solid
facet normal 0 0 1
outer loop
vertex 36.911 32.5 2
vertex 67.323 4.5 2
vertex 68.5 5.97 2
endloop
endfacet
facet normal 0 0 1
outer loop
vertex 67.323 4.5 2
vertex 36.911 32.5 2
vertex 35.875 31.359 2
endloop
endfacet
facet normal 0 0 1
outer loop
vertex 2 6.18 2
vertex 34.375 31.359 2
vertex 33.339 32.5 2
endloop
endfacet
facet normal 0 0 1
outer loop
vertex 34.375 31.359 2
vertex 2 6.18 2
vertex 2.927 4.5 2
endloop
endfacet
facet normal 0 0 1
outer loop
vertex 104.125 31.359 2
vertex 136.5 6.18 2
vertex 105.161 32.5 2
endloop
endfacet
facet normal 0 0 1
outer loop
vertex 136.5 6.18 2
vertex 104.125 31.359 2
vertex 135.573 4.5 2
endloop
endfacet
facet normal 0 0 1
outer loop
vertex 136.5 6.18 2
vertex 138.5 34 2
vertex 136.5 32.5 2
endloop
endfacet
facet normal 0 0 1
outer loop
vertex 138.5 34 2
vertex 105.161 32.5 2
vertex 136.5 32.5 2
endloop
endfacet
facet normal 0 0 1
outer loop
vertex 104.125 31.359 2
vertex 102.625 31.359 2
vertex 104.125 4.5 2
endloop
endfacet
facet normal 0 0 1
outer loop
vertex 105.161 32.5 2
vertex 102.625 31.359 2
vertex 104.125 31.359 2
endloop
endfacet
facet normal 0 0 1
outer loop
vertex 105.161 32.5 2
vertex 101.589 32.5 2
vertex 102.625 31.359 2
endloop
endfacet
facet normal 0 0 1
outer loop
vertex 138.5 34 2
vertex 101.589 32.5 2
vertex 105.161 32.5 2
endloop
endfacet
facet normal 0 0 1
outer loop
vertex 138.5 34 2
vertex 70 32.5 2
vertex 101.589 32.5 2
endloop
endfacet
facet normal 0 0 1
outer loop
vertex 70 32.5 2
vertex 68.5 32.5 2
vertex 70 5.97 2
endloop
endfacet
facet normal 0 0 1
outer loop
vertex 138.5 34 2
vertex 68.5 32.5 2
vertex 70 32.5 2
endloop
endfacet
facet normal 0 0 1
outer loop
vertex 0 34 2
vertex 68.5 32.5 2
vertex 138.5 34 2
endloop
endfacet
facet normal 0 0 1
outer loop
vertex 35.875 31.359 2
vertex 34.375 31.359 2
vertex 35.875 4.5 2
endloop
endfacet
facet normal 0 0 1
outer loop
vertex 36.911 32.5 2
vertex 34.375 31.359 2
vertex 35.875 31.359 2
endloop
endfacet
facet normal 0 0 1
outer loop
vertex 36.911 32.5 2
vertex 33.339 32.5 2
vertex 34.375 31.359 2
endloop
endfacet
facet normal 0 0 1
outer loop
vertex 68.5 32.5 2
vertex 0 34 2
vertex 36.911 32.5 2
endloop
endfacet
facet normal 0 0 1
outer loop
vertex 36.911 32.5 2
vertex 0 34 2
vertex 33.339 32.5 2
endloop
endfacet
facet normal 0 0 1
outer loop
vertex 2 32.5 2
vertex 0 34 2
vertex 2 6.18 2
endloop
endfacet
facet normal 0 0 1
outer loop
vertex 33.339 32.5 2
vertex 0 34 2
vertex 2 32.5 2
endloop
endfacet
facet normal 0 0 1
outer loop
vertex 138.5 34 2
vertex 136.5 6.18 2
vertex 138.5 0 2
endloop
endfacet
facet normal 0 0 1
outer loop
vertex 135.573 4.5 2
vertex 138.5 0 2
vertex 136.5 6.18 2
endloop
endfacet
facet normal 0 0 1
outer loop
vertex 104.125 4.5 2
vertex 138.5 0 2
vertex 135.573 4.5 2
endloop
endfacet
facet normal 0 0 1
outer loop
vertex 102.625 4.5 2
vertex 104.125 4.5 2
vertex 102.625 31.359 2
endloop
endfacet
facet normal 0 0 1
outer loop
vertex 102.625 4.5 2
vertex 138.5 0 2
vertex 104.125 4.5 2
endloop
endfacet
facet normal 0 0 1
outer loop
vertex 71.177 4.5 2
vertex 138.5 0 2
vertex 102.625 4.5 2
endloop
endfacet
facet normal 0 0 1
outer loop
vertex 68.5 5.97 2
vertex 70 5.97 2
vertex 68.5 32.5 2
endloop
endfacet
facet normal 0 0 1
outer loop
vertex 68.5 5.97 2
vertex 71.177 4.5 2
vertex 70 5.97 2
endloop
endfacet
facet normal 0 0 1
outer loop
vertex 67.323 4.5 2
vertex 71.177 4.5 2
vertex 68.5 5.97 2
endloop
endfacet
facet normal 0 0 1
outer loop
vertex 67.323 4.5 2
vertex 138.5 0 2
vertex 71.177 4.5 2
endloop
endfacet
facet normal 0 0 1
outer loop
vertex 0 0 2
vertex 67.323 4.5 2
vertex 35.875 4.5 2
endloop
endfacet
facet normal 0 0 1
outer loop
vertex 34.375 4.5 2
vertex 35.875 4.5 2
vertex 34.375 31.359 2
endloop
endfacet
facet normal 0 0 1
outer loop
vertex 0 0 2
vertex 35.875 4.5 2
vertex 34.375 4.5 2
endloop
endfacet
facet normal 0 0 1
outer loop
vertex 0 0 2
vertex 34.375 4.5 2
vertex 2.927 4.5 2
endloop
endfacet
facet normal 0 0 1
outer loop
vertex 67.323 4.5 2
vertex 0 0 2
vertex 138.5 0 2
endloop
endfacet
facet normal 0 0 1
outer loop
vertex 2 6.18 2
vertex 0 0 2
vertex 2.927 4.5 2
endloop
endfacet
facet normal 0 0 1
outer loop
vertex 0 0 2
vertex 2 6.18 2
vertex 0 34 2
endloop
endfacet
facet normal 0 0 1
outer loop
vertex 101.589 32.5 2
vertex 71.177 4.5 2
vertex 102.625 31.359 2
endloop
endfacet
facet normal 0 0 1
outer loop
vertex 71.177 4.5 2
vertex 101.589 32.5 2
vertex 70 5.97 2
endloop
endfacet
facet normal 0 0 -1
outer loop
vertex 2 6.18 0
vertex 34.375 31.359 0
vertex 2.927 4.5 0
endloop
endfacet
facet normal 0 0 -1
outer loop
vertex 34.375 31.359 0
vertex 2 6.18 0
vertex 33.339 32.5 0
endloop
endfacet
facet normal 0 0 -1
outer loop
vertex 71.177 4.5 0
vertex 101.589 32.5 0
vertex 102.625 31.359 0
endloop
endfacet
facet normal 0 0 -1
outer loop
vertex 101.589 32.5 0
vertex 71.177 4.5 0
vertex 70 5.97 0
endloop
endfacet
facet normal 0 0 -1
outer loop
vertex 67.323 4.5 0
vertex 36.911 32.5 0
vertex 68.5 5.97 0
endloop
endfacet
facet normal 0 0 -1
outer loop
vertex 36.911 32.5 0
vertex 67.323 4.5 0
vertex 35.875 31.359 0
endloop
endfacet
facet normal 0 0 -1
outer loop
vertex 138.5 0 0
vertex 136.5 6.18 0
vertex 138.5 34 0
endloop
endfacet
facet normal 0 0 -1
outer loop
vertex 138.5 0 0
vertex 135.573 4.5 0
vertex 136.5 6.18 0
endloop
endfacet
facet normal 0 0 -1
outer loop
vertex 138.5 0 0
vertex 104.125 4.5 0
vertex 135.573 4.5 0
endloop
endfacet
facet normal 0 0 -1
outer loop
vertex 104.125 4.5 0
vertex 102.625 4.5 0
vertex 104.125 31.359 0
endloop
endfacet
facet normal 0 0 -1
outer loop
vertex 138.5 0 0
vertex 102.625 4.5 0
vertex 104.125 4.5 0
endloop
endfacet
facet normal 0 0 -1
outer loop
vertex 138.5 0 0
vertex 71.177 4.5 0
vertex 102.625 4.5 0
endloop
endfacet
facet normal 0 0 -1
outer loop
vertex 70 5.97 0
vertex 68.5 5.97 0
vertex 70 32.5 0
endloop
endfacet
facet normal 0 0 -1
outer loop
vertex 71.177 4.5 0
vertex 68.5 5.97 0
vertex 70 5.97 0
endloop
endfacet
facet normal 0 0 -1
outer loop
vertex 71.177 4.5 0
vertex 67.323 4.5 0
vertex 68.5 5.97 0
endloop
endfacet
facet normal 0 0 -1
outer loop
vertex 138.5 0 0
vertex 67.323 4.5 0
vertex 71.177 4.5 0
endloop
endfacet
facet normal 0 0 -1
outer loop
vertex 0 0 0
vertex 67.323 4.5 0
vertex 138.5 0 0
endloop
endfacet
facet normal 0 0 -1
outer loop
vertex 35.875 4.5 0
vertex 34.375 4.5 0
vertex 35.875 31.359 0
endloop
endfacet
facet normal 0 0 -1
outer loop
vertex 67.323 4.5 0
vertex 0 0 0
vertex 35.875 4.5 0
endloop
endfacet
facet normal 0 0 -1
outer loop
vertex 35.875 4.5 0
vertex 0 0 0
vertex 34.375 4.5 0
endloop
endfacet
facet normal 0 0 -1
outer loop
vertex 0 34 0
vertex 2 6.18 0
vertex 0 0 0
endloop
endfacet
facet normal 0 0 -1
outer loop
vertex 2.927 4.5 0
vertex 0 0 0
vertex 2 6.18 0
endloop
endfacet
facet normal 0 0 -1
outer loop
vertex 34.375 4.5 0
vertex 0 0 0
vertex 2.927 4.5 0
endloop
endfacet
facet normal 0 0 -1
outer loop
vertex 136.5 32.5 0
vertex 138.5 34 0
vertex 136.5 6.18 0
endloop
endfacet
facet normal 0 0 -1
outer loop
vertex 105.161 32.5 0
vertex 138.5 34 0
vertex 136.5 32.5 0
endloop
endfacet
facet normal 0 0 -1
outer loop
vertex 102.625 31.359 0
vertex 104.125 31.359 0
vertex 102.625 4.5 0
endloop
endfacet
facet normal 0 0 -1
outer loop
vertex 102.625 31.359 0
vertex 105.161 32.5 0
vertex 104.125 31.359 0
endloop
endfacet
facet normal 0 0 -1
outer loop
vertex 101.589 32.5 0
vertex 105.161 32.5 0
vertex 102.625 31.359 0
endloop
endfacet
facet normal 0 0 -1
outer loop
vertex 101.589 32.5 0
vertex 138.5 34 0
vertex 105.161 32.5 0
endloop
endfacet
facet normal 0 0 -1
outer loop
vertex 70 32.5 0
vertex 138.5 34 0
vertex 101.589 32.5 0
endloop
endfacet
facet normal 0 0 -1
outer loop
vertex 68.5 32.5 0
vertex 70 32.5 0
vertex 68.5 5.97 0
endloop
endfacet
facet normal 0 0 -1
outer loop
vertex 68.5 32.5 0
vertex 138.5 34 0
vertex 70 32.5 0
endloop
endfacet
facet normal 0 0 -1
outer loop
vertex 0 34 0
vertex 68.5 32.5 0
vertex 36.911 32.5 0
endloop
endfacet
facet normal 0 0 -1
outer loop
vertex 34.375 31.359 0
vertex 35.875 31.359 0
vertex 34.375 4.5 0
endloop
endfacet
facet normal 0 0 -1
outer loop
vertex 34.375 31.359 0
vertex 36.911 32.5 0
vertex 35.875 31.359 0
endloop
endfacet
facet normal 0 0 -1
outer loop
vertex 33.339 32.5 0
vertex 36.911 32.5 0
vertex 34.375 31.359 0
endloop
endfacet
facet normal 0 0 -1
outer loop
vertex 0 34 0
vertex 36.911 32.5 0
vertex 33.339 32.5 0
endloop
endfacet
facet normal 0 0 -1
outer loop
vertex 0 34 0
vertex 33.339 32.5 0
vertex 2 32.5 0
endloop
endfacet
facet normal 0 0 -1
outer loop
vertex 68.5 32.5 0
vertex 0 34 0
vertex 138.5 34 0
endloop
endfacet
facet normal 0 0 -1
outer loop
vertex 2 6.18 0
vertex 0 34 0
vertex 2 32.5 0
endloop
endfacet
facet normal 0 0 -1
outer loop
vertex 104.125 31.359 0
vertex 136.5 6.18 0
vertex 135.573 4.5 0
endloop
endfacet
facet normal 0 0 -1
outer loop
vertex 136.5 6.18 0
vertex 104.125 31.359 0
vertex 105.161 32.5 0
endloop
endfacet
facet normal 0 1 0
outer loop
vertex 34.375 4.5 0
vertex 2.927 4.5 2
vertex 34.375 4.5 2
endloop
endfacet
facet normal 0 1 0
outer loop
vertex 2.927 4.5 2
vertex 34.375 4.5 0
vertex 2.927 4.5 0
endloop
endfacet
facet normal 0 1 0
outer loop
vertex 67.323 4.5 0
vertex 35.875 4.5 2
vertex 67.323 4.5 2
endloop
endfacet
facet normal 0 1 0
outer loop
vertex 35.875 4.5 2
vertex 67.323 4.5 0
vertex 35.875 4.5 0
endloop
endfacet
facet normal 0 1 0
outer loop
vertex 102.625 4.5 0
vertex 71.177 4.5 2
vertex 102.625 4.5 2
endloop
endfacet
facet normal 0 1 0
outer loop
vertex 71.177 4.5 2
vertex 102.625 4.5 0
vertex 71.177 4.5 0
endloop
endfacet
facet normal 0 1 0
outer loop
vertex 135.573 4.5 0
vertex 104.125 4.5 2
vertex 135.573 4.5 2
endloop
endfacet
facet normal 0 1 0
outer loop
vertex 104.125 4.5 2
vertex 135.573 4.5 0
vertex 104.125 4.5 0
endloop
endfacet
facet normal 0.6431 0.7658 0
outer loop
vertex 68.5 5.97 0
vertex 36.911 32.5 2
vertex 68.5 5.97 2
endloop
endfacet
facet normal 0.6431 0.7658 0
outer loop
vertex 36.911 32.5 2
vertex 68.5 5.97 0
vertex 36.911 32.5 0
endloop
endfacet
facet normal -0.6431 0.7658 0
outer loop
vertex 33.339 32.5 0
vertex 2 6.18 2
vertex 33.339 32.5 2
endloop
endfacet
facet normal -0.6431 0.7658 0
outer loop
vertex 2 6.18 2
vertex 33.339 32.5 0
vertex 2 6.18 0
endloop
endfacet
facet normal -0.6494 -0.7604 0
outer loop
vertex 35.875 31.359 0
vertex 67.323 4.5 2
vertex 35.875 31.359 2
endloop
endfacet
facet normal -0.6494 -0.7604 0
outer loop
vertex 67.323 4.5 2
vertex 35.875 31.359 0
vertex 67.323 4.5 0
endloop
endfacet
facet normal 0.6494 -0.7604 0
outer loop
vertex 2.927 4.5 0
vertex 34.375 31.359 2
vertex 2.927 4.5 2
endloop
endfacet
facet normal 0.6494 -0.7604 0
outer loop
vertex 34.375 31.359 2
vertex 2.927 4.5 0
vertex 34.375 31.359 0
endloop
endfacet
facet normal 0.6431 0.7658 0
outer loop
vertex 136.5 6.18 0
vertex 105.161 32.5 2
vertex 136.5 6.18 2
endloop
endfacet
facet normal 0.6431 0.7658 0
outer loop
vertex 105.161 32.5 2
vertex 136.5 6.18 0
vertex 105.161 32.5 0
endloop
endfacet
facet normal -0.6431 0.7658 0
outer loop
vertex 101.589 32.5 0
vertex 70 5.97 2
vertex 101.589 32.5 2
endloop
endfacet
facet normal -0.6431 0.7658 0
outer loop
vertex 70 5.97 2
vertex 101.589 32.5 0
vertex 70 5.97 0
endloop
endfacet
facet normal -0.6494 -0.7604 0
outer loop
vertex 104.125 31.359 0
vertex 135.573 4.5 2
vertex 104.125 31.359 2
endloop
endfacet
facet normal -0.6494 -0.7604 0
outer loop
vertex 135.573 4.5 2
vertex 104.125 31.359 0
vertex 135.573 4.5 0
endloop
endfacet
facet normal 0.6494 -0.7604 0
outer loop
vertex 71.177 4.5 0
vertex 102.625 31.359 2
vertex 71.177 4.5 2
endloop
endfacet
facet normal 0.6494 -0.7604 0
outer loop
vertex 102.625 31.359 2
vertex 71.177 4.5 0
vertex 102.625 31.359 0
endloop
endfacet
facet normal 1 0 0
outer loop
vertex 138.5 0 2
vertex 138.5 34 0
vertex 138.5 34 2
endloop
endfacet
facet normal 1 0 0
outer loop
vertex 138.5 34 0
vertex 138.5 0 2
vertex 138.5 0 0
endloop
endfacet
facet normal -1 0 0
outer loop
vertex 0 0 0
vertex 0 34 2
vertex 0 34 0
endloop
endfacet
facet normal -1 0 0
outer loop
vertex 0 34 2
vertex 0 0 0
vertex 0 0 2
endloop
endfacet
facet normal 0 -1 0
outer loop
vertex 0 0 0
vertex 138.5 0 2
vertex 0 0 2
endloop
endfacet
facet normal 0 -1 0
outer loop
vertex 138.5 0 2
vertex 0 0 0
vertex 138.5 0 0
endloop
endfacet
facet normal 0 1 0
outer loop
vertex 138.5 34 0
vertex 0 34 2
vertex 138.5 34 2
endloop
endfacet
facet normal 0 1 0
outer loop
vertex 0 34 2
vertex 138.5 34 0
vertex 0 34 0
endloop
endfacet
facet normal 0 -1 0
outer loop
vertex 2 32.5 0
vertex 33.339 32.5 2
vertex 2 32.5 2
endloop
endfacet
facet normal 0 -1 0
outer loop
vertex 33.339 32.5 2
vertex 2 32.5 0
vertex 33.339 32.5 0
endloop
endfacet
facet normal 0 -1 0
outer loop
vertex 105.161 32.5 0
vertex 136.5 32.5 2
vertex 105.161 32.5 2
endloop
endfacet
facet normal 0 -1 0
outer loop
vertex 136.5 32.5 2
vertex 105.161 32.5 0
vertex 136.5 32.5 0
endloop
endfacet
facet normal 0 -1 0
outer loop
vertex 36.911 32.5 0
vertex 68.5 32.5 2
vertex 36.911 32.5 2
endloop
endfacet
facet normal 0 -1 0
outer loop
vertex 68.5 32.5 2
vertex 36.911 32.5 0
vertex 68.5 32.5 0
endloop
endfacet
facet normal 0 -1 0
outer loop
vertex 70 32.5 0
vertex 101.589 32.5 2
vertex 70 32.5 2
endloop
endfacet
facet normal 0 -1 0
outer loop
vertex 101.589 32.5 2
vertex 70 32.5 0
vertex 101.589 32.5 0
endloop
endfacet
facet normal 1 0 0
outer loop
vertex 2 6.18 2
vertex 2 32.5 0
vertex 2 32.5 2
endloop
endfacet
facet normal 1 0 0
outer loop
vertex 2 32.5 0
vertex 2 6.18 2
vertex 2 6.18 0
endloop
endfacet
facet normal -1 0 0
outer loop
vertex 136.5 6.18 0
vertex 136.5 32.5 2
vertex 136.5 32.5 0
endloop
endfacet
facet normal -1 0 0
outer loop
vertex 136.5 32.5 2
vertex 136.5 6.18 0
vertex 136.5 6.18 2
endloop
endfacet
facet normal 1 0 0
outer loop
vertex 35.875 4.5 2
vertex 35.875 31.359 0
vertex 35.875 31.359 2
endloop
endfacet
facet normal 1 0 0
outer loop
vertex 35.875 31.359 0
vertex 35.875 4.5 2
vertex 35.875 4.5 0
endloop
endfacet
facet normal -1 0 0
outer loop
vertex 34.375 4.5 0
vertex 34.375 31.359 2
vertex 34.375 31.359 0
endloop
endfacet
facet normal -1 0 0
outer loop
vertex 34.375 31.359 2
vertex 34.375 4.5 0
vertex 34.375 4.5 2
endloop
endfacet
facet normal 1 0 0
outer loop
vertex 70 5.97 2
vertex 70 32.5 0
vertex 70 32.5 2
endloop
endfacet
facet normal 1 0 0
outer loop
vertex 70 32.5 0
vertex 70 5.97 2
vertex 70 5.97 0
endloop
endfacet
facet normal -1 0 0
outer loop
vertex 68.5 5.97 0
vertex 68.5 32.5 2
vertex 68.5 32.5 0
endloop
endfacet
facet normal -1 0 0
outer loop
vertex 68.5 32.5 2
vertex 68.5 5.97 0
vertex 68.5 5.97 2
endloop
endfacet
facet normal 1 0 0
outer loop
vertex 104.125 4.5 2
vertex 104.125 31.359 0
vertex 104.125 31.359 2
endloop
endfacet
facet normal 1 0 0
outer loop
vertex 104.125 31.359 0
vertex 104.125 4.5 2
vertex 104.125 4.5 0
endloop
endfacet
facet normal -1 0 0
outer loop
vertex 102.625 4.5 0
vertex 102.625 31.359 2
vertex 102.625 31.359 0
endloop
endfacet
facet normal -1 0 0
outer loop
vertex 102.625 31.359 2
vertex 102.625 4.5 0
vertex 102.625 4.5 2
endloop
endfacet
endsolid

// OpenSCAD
// file: mod_prism.scad
/// @file mod_prism.scad
///
/// @author © Dave Harris 2022
///

// points   1        ^
//        / | \      |
//       /  4  \     h
//      /  / \  \    |
//     0--/---\--2   v
//   w | /     \ | 
//     3---------5
//     <lLH><lRH>


module prism(h=20, lLH=15, lRH=25, w=1)
{
 polyhedron(
  points=[
   [0, 0, 0]       // 0 back LH corner
  ,[lLH, h, 0]     // 1 back peak
  ,[lLH+lRH, 0, 0] // 2 back RH corner
  ,[0, 0, w]       // 3 front LH corner
  ,[lLH, h, w]     // 4 front peak
  ,[lLH+lRH, 0, w] // 5 front RH corner
  ]
  , faces=[
    [0, 3, 5, 2] // bottom
   ,[0, 1, 4, 3] // LH ramp
   ,[1, 2, 5, 4] // RH ramp 
   ,[2, 1, 0]    // back wall
   ,[3, 4, 5]    // front wall
   ]
 );
} // end of module prism()

// local test prism
prism(lLH=1, lRH= 22, h=18, w=1 );

// eof
// file: fb_globals.scad
/// @file fb_globals.scad
///
/// @brief project footbridge globals
///
/// @author © Dave Harris 2022
///
/// Included in all project files.


$fa = 1;   // Fragment angle
$fs = 0.4; // Fragment size resolution

// global constants
//------------------

H_canopy = 47;

H_bridge = 49.5; // platform<>bridge
W_bridge = 36;   // width of bridge
                 // > walkway
W_walk   = 34.5; // width
H_walk   = 36;   // height of walkway


Steps    = 27;   // number of steps
W_stairs = 32;   // width ~ 9'6" @ H0
L_tread  = 3.5;  // tread ~ 12" @ H0
L_stairs = L_tread * (Steps +1);
H_rise   = H_bridge / (Steps +1); 
  // rise is 1.7678, not H0 1.75 (6")

W_lift   = 34;

W_build  = W_stairs +2;
L_build  = L_stairs+W_bridge+W_lift +2;

W_pillar = 4;

L_spacing = L_build /2;

Spans = 6;

L_canopy = ((Spans -1) * L_spacing) + W_pillar;

echo("len",L_canopy);

H_door   = 28;
W_door   = 18;

H_window = 6;
W_window = 16;


W_plat45  = 93.9;
W_track34 = 87.9;
W_plat23  = 93.8;
W_track12 = 87.9;

W_plat23edge =
   ( W_plat23 - W_stairs +2 ) /2 ;
W_plat45edge =
   ( W_plat45 - W_stairs +2 ) /2 ;
   
L_span34 = W_track34 + W_plat45edge + W_plat23edge;

L_span12 = 136.5;

W_grider = 2.2;

W_LEDstrip = 7.5;



// eof
// main file
/// @file fb_span12.scad
///
/// @brief footbridge span 1 & 2
///
/// @author © Dave Harris 2022
///

include <fb_globals.scad>;

use <mod_prism.scad>;


echo("L_span12 ", L_span12 );

translate( // bottom beam
  [ 0
  , 0
  , 0  ]
) cube(
  [ L_span12 +2
  , 4.5
  , 2  ]
);

translate( // top beam
  [ 0
  , H_walk -1.5 -2
  , 0  ]
) cube(
  [ L_span12 +2
  , 1.5
  , 2  ]
);

translate( // upright #1  LH
  [ 0
  , 0
  , 0  ]
) cube(
    [ 2
    , H_walk -2
    , 2  ]
  );
  
translate( // upright #5 RH
  [ L_span12
  , 0
  , 0  ]
) cube(
    [ 2
    , H_walk -2
    , 2  ]
  );
  
translate( // upright #2
  [ (L_span12 /4 ) +0.25
  , 0
  , 0  ]
) cube(
    [ 1.5
    , H_walk -2
    , 2  ]
  );
  
translate( // upright #3
  [ (L_span12 /2 ) +0.25
  , 0
  , 0  ]
) cube(
    [ 1.5
    , H_walk -2
    , 2  ]
  );
  
translate( // upright #4
  [ 3* (L_span12 /4 ) +0.25
  , 0
  , 0  ]
) cube(
    [ 1.5
    , H_walk -2
    , 2  ]
  );

difference() // cross beams 1/2
{
  translate( // base prism
    [ 0
    , 4.5
    , 0  ]
  ) prism(
        h = H_walk - 4.5 -2
      , w = 2
      , lLH = ( L_span12 /4 ) +1
      , lRH = ( L_span12 /4 ) +1
    );
  translate( // sub prism
    [ 0
    , 4.5 -2.5
    , -1  ]
  ) prism(
        h = H_walk - 4.5 -1.5 
      , w = 2 +2
      , lLH = ( L_span12 /4 ) +1
      , lRH = ( L_span12 /4 ) +1
    );
}

difference() // cross beams 3/4
{
  translate( // base prism
    [ ( L_span12 /2 )
    , 4.5
    , 0  ]
  ) prism(
        h = H_walk - 4.5 -2
      , w = 2
      , lLH = ( L_span12 /4 ) +1
      , lRH = ( L_span12 /4 ) +1
    );
  translate( // sub prism
    [  ( L_span12 /2 )
    , 4.5 -2.5
    , -1  ]
  ) prism(
        h = H_walk - 4.5 -1.5 
      , w = 2 +2
      , lLH = ( L_span12 /4 ) +1
      , lRH = ( L_span12 /4 ) +1
    );  
}

// eof
